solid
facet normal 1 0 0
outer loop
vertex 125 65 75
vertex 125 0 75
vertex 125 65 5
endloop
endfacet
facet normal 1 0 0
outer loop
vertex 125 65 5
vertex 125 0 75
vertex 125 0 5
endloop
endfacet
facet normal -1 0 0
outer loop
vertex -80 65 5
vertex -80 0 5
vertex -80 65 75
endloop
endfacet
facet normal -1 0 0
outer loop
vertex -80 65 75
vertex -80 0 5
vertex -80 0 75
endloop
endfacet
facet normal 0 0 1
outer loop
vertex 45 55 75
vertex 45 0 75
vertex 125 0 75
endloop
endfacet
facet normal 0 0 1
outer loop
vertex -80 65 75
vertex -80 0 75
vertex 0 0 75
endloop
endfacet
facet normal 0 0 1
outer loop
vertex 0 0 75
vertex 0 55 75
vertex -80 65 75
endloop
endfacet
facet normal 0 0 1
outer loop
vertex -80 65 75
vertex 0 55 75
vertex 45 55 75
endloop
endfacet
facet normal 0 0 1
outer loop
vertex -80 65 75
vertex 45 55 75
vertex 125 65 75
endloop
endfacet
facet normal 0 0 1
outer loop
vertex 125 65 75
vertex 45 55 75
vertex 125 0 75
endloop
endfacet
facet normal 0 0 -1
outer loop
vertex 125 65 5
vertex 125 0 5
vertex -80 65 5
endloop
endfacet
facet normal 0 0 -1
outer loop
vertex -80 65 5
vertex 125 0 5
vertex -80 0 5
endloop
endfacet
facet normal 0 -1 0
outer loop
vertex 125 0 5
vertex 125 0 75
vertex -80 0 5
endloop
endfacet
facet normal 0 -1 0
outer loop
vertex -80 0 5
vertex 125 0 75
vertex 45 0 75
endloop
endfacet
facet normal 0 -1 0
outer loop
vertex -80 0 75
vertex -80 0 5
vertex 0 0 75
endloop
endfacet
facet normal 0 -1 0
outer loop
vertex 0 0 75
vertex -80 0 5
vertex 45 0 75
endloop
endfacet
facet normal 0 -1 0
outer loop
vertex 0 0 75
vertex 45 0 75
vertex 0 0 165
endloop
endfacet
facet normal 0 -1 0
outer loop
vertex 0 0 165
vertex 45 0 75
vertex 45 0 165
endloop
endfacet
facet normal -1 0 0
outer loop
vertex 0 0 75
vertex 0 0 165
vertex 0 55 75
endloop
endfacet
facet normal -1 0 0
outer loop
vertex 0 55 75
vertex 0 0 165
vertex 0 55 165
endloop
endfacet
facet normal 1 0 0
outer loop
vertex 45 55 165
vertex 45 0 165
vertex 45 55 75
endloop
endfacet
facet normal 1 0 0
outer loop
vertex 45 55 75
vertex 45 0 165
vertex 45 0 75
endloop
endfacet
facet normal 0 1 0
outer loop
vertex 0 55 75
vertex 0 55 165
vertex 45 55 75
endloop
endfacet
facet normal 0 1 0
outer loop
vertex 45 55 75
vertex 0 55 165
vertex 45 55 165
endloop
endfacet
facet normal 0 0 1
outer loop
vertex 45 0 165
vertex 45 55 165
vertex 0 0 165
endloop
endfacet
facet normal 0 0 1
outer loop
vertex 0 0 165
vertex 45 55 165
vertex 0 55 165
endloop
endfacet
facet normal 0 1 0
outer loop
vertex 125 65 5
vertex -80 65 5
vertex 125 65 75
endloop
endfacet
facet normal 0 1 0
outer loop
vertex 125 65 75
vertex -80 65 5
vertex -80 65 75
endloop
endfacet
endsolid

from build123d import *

# Parameters (mm, degrees)
SKETCH1_W           = 45
SKETCH1_H           = 55
BOSS_EXTRUDE1_DEPTH = 165
BOSS_EXTRUDE2_DEPTH = 75
SKETCH3_W           = 205
SKETCH3_H           = 80
CUT_EXTRUDE1_DEPTH  = 5
SKETCH4_W           = 205
SKETCH4_H           = 70
CUT_EXTRUDE2_DEPTH  = 15


with BuildPart() as part:
    # Sketch1 → Boss-Extrude1 (new body)
    with BuildSketch(Plane.XY):
        with Locations((22.5, 27.5)):
            Rectangle(SKETCH1_W, SKETCH1_H)
    extrude(amount=BOSS_EXTRUDE1_DEPTH)

    # Sketch2 → Boss-Extrude2 (add)
    with BuildSketch(Plane(origin=(0, 0, 0), x_dir=(-1, 0, 0), z_dir=(0, 0, -1))):
        Polygon((0, 0), (80, 0), (80, 80), (-125, 80), (-125, 0), (-45, 0), align=None)
    extrude(amount=-BOSS_EXTRUDE2_DEPTH)

    # Sketch3 → Cut-Extrude1 (cut)
    with BuildSketch(Plane(origin=(0, 0, 0), x_dir=(-1, 0, 0), z_dir=(0, 0, -1))):
        with Locations((-22.5, 40)):
            Rectangle(SKETCH3_W, SKETCH3_H)
    extrude(amount=-CUT_EXTRUDE1_DEPTH, mode=Mode.SUBTRACT)

    # Sketch4 → Cut-Extrude2 (cut)
    with BuildSketch(Plane(origin=(0, 80, 0), x_dir=(1, 0, 0), z_dir=(0, 1, 0))):
        with Locations((22.5, -40)):
            Rectangle(SKETCH4_W, SKETCH4_H)
    extrude(amount=-CUT_EXTRUDE2_DEPTH, mode=Mode.SUBTRACT)


solid = part.part
